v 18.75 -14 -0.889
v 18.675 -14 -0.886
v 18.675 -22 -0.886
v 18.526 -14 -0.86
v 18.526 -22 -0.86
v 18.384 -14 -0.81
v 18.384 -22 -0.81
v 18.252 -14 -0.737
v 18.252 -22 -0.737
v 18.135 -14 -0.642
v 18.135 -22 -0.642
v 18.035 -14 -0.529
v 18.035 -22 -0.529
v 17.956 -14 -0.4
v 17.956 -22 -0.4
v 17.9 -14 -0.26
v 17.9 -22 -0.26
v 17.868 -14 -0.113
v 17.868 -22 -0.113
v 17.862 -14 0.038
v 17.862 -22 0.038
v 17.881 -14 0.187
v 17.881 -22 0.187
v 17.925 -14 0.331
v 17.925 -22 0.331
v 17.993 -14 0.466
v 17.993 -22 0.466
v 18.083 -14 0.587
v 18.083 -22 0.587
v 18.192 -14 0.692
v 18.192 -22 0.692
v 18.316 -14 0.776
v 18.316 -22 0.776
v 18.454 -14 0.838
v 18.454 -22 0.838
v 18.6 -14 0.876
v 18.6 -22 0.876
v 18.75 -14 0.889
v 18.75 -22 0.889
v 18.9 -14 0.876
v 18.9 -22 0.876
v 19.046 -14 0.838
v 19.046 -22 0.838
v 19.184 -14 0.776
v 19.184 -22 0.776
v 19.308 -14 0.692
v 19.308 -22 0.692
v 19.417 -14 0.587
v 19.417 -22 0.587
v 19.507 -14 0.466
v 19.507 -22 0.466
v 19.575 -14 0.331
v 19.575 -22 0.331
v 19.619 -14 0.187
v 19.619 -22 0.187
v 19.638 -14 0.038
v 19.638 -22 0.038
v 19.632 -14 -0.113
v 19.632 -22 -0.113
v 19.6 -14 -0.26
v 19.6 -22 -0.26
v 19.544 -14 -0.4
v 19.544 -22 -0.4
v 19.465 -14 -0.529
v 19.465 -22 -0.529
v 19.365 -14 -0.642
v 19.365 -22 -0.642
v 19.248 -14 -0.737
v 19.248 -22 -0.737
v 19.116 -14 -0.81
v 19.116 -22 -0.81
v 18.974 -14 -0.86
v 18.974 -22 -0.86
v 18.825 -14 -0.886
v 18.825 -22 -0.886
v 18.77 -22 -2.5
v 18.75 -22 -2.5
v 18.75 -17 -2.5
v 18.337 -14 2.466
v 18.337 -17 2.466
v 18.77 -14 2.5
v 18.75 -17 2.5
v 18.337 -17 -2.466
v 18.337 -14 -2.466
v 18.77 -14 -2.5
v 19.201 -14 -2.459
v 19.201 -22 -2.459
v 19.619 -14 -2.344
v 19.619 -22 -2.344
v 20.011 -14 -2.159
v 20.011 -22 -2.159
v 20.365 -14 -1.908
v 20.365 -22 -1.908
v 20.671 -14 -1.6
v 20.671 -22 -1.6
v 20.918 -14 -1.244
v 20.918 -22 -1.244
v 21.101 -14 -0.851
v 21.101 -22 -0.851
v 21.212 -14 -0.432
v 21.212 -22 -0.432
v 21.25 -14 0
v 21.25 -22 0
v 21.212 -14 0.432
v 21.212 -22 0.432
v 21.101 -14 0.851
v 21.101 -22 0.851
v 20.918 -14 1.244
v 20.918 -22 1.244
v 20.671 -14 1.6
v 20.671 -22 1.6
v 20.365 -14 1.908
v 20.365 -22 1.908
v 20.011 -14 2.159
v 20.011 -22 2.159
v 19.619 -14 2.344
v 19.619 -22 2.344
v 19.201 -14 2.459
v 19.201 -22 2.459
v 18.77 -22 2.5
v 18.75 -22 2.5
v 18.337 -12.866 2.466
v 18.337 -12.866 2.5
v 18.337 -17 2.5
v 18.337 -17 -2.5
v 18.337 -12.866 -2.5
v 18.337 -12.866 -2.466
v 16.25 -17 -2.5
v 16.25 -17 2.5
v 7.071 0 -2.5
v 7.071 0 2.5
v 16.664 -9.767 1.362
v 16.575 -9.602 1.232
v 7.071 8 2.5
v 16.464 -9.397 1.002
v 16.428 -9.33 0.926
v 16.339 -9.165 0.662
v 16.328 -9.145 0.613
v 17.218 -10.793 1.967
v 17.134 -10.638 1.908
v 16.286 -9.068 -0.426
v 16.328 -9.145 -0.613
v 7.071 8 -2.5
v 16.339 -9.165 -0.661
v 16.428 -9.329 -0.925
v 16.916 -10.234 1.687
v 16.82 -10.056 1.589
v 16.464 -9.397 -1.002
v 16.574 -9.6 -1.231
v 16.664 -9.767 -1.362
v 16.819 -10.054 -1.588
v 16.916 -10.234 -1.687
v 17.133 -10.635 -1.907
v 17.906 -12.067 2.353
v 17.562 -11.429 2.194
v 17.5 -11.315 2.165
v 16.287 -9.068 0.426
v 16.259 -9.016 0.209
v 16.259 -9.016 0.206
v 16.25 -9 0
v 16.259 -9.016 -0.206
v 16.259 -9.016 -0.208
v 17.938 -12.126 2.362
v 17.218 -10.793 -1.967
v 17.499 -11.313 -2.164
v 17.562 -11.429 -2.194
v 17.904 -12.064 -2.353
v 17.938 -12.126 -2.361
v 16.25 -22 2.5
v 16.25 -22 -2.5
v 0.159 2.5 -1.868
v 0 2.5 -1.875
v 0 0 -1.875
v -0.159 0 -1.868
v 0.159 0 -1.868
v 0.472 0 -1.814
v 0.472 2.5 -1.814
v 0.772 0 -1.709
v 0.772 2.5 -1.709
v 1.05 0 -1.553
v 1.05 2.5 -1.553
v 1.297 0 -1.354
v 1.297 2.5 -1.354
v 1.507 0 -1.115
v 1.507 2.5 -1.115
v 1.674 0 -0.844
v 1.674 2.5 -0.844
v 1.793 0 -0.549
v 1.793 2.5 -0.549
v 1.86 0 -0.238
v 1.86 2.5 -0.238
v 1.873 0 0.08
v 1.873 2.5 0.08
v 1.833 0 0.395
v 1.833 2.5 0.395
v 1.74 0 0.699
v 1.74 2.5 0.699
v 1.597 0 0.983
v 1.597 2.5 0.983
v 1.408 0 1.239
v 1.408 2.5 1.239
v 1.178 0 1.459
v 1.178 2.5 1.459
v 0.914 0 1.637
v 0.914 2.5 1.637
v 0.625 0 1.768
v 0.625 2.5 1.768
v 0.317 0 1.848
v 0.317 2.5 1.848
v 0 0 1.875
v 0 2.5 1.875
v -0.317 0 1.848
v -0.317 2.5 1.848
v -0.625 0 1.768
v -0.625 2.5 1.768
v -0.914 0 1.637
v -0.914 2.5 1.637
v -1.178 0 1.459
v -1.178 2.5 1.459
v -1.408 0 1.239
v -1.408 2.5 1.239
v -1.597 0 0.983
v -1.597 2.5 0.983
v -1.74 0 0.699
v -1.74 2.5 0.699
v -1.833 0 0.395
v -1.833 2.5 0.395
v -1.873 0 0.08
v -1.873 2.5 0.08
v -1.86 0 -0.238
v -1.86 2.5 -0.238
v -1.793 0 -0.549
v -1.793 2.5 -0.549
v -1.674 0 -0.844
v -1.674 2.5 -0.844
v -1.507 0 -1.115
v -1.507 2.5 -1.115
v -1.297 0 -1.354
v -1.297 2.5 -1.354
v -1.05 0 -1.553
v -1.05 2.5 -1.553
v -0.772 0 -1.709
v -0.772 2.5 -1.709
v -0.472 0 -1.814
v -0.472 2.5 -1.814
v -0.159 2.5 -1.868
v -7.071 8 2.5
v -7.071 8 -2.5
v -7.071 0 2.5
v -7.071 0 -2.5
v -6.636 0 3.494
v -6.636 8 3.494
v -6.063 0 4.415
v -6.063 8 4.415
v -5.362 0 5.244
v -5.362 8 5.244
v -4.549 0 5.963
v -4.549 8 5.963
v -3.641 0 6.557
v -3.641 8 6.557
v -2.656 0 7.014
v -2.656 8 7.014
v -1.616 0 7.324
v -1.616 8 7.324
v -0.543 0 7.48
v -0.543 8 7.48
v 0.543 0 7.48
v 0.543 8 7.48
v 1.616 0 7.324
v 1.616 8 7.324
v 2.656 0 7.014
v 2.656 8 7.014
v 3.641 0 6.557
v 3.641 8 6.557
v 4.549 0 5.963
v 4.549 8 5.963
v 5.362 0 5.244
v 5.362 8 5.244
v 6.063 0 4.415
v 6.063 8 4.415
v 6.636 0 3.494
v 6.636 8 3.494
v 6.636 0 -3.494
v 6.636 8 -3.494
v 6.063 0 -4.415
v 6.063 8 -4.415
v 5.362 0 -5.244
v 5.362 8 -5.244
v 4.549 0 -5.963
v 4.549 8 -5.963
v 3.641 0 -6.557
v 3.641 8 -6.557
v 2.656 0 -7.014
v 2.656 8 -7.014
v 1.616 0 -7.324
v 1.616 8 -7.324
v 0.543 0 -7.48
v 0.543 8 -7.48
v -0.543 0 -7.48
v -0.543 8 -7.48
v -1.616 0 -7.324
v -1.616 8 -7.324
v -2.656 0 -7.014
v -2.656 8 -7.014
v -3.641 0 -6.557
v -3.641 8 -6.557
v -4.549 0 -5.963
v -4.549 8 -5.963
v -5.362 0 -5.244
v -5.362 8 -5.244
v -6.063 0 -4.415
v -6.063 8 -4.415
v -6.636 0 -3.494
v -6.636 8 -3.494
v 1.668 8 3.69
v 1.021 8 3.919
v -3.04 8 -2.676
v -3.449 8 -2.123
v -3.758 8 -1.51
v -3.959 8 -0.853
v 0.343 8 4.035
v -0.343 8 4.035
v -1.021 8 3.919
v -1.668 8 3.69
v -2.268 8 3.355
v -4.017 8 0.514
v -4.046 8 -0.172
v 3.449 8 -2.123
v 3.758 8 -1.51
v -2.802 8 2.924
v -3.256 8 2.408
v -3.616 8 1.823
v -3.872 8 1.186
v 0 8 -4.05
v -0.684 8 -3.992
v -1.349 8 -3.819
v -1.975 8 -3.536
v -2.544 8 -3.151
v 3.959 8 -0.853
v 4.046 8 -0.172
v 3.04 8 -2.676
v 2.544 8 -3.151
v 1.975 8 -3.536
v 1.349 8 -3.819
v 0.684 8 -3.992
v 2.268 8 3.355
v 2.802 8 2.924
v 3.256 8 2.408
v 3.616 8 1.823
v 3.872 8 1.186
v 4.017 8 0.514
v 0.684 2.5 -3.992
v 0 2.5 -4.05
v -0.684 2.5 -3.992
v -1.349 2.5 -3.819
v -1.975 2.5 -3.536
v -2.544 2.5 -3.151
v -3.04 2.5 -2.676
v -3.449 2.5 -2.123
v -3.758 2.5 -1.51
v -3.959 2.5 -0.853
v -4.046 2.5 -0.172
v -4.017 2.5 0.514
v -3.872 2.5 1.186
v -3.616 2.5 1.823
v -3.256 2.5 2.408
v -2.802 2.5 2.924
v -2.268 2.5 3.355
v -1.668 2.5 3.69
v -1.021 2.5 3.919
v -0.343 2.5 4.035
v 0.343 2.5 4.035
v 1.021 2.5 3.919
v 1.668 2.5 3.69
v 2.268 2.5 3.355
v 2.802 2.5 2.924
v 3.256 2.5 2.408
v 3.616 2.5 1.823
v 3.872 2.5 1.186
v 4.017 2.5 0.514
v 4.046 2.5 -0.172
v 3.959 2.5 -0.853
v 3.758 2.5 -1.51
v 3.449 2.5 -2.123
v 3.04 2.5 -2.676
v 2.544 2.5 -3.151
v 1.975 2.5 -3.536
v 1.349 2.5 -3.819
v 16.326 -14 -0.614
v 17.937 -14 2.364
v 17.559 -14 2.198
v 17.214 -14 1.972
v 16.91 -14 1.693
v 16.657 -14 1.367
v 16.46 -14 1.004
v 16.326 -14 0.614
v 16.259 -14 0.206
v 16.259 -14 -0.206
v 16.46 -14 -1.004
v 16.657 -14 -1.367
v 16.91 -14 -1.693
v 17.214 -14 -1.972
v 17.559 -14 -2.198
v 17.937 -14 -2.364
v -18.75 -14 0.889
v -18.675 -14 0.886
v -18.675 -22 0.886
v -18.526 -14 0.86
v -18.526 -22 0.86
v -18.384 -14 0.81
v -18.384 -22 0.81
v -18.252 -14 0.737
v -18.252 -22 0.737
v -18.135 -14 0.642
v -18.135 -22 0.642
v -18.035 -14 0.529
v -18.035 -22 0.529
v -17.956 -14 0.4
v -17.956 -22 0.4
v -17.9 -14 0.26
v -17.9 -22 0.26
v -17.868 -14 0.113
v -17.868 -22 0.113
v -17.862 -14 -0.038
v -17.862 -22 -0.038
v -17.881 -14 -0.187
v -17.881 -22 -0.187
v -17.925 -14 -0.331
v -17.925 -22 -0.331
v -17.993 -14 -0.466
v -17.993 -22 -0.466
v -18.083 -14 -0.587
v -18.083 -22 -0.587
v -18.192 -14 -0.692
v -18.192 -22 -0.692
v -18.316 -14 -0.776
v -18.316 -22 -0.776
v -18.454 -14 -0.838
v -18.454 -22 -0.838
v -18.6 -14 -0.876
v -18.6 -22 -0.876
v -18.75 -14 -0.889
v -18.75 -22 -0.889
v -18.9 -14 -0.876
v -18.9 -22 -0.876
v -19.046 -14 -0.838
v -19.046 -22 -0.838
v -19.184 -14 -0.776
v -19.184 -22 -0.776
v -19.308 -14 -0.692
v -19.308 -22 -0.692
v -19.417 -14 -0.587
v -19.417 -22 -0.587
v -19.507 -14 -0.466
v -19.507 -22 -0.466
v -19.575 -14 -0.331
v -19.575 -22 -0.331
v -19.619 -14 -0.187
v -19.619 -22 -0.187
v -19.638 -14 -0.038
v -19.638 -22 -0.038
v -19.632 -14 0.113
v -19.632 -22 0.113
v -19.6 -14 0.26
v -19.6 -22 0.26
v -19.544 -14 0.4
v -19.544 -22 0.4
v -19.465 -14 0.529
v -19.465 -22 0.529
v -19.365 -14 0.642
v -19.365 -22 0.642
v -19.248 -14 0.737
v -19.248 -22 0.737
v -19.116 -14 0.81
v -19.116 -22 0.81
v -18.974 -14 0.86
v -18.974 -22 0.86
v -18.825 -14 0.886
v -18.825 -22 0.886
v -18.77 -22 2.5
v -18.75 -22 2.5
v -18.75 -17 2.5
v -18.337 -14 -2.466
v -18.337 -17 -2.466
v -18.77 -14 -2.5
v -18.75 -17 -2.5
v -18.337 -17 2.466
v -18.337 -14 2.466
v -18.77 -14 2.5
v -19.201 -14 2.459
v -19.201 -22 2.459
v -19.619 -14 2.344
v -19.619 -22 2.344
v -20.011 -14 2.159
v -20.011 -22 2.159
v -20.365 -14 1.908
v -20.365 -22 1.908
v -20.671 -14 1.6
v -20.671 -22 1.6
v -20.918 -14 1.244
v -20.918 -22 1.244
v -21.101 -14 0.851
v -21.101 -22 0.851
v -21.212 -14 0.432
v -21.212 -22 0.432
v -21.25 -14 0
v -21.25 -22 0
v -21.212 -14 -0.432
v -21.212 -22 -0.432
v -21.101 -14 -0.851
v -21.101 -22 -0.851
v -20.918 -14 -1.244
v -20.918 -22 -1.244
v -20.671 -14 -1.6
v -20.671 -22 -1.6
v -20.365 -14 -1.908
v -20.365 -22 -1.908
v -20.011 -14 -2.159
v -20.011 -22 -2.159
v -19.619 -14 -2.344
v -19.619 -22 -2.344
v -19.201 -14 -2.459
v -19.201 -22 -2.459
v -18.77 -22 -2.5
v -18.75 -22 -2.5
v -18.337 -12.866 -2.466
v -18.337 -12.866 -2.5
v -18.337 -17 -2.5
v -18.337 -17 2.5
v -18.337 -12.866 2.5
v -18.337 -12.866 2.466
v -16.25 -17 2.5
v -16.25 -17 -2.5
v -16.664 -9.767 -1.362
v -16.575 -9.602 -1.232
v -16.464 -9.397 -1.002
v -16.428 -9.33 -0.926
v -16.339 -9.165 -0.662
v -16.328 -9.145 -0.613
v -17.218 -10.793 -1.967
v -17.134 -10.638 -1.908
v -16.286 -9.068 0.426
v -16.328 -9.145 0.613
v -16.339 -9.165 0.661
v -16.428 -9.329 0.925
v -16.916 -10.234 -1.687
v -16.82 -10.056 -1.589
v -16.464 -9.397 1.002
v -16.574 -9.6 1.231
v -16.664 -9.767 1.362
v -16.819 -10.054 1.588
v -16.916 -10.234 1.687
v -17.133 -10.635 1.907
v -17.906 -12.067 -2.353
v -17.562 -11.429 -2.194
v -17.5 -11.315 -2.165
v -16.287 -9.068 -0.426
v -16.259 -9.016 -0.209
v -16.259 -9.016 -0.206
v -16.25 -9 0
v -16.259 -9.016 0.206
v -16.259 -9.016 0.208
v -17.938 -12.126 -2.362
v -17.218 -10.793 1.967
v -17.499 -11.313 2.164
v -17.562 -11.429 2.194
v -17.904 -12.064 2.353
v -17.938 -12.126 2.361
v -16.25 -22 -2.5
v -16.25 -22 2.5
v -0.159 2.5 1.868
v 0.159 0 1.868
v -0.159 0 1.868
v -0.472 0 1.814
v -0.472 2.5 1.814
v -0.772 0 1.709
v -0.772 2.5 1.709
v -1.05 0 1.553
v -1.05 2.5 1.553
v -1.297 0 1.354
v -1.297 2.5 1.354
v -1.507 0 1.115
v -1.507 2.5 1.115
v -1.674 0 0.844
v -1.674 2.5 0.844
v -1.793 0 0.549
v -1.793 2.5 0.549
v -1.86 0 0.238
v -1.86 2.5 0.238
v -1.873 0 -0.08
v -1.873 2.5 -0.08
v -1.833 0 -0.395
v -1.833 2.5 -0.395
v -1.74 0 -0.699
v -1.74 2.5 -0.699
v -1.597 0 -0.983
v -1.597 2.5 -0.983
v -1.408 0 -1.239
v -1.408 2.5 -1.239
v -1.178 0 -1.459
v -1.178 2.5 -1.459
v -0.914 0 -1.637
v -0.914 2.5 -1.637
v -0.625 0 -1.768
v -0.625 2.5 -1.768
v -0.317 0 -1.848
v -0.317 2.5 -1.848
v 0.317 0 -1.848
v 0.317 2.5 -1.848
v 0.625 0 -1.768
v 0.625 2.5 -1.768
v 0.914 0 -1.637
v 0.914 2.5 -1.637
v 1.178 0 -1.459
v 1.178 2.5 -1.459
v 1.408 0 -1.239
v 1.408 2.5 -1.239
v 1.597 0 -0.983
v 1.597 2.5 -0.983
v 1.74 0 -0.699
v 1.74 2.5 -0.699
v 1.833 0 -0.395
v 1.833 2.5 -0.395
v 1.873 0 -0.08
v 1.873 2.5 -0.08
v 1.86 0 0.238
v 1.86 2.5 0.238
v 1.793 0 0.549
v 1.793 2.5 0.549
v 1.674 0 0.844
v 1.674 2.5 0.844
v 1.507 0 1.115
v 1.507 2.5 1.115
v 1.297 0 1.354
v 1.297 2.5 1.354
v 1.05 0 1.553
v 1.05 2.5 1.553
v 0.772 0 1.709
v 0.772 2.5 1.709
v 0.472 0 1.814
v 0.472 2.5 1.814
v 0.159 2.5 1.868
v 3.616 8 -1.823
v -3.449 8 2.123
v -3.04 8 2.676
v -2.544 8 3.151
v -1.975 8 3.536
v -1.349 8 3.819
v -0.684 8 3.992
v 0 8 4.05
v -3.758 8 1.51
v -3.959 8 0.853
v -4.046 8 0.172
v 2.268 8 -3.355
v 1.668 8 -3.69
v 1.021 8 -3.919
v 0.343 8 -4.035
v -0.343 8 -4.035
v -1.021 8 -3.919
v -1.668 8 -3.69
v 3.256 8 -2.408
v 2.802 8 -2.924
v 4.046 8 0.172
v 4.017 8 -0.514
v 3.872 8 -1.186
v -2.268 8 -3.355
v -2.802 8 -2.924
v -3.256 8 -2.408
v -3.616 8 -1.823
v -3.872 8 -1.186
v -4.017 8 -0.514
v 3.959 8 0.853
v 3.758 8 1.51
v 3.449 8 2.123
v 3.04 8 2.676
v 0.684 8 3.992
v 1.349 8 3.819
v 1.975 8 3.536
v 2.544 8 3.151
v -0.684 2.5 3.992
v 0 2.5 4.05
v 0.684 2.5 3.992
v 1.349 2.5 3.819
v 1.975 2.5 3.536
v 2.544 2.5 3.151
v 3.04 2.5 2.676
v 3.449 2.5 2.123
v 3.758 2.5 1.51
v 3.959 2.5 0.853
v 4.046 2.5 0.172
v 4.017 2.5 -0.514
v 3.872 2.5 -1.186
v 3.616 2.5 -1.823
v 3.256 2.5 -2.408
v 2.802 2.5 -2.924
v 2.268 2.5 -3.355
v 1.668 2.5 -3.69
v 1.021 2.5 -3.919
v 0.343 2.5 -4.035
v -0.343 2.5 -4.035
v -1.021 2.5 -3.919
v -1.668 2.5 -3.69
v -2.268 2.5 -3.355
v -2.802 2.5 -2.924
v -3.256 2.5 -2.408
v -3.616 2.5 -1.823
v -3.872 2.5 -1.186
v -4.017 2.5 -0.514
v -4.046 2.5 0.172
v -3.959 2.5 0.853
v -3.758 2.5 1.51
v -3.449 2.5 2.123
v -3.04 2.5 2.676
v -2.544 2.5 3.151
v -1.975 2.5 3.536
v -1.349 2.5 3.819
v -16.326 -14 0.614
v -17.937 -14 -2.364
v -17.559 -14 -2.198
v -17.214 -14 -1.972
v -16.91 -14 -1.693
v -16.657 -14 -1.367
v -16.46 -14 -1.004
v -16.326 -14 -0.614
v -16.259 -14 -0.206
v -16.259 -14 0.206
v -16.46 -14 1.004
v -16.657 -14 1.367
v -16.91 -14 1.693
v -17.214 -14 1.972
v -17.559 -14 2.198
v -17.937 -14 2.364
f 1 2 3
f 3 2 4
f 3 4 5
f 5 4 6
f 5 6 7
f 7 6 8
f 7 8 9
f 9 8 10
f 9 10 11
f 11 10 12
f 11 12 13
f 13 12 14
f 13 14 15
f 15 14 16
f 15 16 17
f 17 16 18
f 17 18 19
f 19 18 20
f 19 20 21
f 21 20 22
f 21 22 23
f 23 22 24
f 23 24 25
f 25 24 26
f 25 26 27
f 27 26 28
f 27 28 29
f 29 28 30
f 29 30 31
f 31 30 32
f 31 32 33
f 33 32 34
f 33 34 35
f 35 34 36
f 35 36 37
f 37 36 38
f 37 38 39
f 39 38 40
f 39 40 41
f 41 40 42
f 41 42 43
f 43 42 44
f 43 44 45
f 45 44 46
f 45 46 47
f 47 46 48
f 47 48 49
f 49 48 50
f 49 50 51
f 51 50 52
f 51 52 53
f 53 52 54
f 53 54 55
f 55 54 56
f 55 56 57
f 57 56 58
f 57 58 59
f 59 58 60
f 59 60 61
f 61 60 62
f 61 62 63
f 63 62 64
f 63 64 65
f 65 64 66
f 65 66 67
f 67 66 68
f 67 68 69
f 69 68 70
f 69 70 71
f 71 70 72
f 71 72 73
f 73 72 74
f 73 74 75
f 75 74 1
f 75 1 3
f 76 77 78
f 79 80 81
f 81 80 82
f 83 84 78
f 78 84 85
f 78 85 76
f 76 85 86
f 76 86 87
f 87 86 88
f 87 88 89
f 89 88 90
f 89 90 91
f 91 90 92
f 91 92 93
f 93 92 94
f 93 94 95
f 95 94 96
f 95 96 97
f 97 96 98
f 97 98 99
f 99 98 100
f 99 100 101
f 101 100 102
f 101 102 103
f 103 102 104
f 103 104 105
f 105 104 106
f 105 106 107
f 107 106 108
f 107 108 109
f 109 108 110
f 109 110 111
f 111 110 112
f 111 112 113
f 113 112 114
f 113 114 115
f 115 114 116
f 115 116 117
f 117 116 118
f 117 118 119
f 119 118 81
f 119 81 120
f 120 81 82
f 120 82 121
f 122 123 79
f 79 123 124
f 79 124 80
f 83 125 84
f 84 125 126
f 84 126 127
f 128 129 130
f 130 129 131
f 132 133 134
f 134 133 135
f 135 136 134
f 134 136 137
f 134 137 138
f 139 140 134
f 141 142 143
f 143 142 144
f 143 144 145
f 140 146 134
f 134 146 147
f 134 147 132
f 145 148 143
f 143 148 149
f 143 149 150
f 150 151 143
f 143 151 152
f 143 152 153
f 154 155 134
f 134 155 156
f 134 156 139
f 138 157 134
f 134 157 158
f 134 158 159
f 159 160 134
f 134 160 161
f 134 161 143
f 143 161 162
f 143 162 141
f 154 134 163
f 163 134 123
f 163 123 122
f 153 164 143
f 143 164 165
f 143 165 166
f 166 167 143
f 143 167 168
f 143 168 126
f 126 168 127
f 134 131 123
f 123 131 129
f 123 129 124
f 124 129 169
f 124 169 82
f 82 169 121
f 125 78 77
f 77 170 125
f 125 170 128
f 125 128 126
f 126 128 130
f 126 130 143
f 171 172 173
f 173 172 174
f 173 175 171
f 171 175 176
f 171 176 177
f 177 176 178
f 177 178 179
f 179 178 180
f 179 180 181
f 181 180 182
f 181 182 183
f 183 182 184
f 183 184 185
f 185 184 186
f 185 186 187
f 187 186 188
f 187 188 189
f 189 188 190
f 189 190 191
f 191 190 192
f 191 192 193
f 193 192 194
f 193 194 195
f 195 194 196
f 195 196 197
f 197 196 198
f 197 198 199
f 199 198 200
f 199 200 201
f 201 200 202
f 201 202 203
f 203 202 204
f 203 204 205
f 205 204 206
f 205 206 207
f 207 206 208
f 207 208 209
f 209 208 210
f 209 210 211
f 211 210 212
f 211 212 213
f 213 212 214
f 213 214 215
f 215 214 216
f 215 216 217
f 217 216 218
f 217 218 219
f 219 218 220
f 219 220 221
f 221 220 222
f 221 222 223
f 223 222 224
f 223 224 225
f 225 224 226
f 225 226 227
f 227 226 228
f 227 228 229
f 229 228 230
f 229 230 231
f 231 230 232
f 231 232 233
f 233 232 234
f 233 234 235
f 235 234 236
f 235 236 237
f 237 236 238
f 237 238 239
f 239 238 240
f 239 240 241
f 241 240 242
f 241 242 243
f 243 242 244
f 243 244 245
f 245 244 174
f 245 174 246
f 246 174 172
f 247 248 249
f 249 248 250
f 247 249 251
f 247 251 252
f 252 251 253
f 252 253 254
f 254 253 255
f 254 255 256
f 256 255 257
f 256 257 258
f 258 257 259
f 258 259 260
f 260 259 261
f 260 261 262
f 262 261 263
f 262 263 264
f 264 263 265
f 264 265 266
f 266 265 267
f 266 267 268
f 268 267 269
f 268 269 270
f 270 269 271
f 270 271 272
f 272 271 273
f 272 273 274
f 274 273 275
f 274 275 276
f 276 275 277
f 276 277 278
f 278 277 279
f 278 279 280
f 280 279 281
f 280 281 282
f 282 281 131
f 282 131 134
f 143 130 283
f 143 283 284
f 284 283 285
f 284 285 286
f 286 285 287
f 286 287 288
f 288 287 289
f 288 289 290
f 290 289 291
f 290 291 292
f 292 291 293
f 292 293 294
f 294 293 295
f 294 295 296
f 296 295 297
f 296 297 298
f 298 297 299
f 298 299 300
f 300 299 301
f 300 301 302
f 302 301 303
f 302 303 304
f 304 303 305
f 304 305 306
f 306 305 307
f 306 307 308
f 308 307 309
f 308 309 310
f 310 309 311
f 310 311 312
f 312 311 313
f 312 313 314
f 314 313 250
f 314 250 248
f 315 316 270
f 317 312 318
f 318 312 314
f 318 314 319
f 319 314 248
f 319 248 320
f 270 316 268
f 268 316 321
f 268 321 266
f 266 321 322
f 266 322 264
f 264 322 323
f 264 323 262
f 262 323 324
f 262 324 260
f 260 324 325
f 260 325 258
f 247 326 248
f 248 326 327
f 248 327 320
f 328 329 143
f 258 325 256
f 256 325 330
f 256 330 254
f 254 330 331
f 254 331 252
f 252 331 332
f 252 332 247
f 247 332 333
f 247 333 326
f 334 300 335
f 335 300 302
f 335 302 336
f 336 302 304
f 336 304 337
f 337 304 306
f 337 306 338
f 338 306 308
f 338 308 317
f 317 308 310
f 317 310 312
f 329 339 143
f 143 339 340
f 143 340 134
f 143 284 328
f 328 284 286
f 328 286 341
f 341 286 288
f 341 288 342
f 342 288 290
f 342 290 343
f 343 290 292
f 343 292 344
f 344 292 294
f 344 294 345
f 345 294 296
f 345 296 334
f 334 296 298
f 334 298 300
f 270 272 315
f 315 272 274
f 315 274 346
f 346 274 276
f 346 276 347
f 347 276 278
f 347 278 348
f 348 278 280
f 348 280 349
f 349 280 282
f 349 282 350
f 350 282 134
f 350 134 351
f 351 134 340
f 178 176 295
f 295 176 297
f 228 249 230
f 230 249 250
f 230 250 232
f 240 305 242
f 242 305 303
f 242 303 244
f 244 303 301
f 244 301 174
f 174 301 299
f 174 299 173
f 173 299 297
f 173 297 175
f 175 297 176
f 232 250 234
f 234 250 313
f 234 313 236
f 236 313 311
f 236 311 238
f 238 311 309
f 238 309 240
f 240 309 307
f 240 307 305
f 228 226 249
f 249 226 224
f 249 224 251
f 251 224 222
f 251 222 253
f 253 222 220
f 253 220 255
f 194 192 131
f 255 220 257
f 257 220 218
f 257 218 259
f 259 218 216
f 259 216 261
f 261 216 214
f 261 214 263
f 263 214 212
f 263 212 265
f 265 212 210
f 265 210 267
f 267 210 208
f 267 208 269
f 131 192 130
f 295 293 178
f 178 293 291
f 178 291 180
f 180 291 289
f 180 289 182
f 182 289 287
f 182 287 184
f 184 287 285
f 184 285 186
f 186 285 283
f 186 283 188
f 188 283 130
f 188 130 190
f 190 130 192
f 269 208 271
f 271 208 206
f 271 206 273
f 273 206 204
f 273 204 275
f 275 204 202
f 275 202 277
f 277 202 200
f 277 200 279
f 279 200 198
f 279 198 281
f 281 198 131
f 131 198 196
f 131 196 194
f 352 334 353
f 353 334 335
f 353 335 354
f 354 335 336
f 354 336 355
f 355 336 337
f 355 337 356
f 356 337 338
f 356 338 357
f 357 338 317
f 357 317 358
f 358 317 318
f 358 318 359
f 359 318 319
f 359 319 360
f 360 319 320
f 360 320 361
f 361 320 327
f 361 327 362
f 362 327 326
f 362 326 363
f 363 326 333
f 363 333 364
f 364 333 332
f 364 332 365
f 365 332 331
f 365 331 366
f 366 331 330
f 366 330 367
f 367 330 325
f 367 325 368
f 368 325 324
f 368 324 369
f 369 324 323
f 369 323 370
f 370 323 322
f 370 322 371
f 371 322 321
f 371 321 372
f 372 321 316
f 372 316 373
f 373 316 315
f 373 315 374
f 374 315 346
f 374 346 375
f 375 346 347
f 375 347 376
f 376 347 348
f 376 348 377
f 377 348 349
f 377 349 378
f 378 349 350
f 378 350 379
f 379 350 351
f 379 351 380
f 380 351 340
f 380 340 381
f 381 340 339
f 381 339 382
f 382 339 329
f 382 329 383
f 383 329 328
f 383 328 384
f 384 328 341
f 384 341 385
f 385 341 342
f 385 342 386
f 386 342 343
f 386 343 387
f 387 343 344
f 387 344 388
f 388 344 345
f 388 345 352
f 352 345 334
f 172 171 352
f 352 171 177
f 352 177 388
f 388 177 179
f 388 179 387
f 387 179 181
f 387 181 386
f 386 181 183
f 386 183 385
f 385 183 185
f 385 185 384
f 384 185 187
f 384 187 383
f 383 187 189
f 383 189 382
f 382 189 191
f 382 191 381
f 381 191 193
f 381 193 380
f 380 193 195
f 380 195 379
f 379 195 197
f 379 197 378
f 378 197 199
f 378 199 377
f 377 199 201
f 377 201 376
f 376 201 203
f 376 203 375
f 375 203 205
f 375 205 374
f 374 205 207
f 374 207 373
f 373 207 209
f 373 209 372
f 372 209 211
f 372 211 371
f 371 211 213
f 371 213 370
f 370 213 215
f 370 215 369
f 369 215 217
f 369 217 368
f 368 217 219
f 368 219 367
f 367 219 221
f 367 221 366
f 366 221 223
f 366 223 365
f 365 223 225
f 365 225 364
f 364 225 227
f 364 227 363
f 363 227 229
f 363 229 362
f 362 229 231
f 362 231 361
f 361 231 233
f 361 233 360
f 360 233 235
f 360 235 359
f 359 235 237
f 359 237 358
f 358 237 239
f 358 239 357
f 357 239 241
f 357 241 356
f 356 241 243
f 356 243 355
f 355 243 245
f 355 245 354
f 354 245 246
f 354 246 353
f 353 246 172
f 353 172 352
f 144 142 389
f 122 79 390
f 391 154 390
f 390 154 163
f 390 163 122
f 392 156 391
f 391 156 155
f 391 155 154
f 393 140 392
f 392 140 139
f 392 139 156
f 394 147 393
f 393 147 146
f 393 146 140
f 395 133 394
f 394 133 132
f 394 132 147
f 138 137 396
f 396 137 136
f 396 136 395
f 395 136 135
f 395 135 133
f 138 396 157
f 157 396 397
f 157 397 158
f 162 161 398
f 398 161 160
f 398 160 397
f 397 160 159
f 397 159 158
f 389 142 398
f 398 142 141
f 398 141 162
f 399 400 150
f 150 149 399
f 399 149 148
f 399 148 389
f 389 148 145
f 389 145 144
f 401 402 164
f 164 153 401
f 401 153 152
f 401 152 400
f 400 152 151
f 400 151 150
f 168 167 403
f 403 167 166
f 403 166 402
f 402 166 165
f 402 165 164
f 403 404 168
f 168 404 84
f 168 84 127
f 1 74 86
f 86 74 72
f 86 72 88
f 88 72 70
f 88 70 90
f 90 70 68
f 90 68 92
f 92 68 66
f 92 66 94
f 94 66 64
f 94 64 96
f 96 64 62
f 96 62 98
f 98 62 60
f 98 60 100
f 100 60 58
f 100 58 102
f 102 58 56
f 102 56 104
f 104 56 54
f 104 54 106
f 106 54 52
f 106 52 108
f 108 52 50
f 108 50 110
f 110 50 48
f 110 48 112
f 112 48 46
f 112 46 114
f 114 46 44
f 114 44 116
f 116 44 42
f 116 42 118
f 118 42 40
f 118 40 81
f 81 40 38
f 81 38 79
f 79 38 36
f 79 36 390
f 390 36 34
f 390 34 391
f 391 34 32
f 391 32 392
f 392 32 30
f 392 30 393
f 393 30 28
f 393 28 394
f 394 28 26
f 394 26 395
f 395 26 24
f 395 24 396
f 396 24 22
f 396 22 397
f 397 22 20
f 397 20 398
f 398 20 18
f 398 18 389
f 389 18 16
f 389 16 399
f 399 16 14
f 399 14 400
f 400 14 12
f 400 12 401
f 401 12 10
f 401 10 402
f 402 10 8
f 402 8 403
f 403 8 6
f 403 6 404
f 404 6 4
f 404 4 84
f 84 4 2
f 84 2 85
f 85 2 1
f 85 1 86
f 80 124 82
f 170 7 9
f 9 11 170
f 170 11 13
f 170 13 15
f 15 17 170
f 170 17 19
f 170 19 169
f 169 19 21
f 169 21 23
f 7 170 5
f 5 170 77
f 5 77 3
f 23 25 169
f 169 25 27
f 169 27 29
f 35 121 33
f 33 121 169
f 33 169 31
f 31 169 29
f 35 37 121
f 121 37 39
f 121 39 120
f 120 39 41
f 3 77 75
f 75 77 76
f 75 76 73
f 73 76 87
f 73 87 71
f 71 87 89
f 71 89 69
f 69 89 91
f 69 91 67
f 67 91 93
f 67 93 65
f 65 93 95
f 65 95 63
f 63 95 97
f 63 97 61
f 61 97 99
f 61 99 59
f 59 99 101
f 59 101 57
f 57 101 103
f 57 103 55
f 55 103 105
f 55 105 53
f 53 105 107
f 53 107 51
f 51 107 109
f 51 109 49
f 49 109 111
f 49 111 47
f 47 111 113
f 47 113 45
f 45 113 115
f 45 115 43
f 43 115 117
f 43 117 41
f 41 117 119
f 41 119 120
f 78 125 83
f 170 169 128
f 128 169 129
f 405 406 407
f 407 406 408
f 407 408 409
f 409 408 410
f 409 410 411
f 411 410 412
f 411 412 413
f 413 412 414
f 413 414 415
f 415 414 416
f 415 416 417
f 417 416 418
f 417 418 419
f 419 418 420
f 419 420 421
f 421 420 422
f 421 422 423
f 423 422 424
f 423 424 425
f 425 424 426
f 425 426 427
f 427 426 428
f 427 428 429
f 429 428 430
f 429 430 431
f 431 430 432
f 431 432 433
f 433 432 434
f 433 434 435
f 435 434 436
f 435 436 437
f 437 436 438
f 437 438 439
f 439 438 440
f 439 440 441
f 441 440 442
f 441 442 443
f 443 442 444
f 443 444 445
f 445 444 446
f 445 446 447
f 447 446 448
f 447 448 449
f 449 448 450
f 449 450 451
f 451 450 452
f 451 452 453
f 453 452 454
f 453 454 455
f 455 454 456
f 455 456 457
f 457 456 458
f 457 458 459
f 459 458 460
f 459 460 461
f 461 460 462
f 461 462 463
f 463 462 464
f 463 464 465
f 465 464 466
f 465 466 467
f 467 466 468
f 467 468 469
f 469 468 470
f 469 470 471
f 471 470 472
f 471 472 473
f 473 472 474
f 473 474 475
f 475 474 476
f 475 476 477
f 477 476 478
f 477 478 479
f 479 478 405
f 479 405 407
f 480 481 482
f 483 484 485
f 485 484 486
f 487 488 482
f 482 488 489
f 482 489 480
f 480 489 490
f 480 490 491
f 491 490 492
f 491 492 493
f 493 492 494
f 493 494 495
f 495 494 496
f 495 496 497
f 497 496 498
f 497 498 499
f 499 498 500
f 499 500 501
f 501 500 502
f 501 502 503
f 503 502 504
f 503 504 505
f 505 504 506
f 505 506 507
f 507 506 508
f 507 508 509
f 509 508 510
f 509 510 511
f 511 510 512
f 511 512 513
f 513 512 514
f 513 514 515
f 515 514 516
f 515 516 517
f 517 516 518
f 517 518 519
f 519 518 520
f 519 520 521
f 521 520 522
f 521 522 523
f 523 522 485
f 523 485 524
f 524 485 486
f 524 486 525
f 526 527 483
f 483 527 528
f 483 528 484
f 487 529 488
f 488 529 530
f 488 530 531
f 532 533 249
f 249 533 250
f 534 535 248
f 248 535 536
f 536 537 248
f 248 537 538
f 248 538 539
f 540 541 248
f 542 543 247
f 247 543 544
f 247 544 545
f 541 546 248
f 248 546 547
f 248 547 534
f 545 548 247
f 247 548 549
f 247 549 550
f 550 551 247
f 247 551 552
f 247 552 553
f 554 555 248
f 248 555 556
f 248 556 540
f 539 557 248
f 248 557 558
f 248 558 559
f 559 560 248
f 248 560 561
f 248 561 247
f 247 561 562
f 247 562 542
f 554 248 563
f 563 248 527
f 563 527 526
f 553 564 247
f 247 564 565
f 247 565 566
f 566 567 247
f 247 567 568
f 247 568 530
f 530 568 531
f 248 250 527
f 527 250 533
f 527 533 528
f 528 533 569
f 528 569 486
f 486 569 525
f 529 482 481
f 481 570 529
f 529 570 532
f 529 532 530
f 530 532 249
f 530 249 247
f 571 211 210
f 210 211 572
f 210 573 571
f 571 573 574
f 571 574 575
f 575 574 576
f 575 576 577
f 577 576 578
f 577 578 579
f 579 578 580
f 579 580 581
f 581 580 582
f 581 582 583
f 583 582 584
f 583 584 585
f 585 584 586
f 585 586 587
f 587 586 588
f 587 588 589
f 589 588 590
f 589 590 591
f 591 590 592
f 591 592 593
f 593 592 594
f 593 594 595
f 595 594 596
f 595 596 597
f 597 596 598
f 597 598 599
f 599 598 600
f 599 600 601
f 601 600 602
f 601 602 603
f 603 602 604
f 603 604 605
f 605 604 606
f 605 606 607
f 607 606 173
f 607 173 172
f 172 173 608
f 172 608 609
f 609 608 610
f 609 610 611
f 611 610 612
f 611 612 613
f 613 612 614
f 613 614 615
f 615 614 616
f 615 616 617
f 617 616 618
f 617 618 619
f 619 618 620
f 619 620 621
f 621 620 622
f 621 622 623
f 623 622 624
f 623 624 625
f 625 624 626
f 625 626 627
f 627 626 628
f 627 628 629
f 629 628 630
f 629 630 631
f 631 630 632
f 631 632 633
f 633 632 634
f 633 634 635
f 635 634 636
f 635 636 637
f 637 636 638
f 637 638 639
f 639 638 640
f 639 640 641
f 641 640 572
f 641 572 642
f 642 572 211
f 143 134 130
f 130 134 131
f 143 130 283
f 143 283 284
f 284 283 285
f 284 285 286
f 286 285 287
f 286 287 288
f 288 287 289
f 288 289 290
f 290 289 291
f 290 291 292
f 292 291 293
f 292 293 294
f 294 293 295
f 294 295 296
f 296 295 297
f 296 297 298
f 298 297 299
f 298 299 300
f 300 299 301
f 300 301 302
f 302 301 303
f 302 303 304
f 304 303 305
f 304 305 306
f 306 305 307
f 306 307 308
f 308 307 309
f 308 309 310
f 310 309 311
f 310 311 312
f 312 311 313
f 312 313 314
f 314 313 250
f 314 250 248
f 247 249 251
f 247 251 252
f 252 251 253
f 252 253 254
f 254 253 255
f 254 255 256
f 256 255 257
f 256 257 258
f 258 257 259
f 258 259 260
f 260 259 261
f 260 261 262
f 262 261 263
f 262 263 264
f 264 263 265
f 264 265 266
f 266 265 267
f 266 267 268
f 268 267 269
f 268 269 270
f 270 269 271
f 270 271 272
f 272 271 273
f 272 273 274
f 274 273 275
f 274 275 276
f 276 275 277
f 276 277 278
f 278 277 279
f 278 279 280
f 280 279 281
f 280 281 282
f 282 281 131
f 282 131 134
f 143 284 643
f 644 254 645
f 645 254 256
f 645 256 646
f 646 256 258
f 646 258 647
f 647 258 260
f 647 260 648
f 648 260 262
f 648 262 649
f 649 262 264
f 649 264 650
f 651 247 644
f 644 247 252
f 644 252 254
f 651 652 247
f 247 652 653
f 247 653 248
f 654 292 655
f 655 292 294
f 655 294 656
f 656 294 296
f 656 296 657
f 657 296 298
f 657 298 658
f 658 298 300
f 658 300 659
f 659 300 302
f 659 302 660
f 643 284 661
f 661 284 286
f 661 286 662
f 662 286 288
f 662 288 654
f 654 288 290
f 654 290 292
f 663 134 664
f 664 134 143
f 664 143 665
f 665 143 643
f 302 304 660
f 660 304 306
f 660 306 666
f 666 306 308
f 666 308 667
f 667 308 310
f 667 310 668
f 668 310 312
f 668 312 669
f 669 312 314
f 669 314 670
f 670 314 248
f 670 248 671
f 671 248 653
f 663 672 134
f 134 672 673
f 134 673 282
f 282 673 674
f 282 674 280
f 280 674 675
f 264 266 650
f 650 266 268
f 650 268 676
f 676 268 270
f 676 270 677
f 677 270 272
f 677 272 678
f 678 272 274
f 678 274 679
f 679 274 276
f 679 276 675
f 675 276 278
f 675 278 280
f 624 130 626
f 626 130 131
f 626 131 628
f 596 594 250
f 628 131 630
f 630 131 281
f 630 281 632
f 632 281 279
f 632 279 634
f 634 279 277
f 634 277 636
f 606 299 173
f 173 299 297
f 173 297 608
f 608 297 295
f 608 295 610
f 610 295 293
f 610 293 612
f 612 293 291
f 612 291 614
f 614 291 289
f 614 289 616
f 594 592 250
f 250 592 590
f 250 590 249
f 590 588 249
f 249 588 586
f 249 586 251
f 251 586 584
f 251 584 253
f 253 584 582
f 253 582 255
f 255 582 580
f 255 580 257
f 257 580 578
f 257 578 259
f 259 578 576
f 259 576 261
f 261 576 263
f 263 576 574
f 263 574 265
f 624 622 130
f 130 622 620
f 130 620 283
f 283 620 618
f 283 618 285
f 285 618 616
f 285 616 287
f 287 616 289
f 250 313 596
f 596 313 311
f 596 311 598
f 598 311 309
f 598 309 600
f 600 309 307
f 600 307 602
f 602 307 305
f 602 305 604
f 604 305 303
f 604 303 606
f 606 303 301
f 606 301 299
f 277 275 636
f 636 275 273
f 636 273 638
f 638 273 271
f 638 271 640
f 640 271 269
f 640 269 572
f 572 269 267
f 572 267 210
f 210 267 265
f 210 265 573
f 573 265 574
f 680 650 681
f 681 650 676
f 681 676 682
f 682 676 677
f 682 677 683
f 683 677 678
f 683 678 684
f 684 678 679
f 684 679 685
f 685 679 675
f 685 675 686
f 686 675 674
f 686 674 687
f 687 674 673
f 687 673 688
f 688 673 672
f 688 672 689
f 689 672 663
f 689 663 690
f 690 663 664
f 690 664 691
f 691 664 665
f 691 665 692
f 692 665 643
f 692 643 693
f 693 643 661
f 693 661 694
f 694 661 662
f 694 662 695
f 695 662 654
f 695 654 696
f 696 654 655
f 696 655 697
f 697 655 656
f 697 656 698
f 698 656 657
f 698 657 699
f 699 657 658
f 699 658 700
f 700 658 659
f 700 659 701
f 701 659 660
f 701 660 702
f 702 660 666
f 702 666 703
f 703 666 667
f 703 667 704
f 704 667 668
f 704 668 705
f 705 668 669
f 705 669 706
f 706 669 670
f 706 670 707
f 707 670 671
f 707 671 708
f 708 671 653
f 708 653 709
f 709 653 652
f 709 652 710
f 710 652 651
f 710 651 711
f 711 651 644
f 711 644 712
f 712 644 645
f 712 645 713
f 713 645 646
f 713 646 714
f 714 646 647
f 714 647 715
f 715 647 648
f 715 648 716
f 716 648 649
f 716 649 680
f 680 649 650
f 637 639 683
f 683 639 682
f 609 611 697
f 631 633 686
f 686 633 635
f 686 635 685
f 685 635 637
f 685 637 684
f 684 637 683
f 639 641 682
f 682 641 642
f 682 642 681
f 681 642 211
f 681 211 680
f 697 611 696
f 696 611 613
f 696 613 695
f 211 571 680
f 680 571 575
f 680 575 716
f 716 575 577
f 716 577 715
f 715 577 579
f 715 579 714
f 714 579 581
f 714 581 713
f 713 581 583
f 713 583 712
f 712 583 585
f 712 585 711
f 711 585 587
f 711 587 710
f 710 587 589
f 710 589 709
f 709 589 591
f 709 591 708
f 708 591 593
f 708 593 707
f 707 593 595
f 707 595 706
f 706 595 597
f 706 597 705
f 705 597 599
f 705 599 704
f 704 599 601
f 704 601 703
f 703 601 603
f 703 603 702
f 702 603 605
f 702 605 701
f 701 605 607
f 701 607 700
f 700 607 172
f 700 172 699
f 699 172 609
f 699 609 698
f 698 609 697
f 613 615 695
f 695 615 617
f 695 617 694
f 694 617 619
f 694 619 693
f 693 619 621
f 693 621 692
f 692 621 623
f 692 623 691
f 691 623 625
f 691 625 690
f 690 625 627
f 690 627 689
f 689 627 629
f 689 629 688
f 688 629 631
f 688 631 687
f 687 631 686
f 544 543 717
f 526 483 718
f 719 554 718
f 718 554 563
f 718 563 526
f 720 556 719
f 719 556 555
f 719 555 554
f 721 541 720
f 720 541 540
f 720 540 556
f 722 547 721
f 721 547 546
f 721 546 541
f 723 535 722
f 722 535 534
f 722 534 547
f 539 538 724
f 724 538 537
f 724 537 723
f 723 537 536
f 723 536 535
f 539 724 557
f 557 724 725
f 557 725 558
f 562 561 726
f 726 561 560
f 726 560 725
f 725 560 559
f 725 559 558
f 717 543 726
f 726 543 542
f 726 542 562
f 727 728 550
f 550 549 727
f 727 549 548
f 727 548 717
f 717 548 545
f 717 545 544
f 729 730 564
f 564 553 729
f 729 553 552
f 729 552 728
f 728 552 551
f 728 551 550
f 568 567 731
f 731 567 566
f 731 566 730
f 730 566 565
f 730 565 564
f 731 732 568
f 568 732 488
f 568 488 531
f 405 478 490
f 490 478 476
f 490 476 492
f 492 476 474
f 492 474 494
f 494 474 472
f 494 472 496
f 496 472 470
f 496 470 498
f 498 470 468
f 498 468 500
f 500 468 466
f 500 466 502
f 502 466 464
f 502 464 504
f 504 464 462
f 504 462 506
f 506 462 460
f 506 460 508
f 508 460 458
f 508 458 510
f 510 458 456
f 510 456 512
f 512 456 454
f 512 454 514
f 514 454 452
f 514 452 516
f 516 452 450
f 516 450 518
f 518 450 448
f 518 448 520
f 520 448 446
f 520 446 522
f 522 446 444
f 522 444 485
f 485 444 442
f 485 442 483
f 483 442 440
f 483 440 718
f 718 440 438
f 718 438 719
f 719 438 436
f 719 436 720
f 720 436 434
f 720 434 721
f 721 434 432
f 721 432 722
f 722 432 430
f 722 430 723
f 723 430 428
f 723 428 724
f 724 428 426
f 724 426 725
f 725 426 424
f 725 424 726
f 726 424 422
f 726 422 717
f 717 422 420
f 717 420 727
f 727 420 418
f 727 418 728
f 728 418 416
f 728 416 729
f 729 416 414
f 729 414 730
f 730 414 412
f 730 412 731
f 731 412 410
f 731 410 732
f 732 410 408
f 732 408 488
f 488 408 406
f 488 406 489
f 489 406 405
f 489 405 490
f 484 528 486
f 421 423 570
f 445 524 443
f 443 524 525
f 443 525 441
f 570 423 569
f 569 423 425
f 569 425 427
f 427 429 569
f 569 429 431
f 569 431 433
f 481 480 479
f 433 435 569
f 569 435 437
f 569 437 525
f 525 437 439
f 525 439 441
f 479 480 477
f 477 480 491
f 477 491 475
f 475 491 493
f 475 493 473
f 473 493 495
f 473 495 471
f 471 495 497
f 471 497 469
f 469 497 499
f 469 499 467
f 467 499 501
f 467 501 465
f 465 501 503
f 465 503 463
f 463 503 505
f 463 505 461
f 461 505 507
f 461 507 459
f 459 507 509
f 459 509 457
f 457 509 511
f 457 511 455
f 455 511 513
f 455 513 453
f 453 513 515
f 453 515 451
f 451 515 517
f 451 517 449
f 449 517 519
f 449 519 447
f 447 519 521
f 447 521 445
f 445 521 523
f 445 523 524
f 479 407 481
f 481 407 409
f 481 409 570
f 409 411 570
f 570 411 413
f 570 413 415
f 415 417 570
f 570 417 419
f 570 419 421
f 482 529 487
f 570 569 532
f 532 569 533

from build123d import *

# Parameters (mm, degrees)
SKETCH1_R                = 1.875
BOSS_EXTRUDE1_DEPTH      = 8
BOSS_EXTRUDE2_START      = -17
SKETCH1_3_R              = 2.5
SKETCH1_3_R_2            = 0.889
BOSS_EXTRUDE2_DEPTH      = 5
SKETCH4_R                = 4.05
CUT_EXTRUDE1_DEPTH       = 5.5
BOSS_EXTRUDE3_DEPTH      = 2.5
BOSS_EXTRUDE3_DEPTH_BACK = 2.5
CUT_EXTRUDE2_DEPTH       = 31.129926983
CUT_EXTRUDE2_DEPTH_BACK  = 2
SKETCH5_R                = 2.5
BOSS_EXTRUDE4_START      = 5
SKETCH8_R                = 0.889
BOSS_EXTRUDE4_DEPTH      = 5
SKETCH1_4_R              = 0.889
CUT_EXTRUDE3_DEPTH       = 32.49305479
CIRPATTERN5_COUNT        = 2


with BuildPart() as part:
    # Sketch1 → Boss-Extrude1 (new body)
    with BuildSketch(Plane(origin=(0, 0, 0), x_dir=(1, 0, 0), z_dir=(0, 1, 0))):
        with BuildLine():
            Line((7.071067812, -2.5), (7.071067812, 2.5))
            ThreePointArc((7.071067812, 2.5), (0, 7.5), (-7.071067812, 2.5))
            Line((-7.071067812, 2.5), (-7.071067812, -2.5))
            ThreePointArc((-7.071067812, -2.5), (0, -7.5), (7.071067812, -2.5))
        make_face()
        Circle(SKETCH1_R, mode=Mode.SUBTRACT)
    extrude(amount=BOSS_EXTRUDE1_DEPTH)

    # Sketch4 → Cut-Extrude1 (cut)
    with BuildSketch(Plane(origin=(0, 8, 0), x_dir=(1, 0, 0), z_dir=(0, 1, 0))):
        Circle(SKETCH4_R)
    extrude(amount=-CUT_EXTRUDE1_DEPTH, mode=Mode.SUBTRACT)



with BuildPart() as body_2:
    # Sketch1<3> → Boss-Extrude2 (new body)
    with BuildSketch(Plane(origin=(0, 0, 0), x_dir=(1, 0, 0), z_dir=(0, 1, 0)).offset(BOSS_EXTRUDE2_START)):
        with Locations((-18.75, 0)):
            Circle(SKETCH1_3_R)
        with Locations((-18.75, 0)):
            Circle(SKETCH1_3_R_2, mode=Mode.SUBTRACT)
    extrude(amount=BOSS_EXTRUDE2_DEPTH)


with BuildPart() as part_1:
    add(part.part)

    add(body_2.part)  # Boss-Extrude3 merges body 2
    # Sketch3 → Boss-Extrude3 (add, two sides: drawn at the far end of the back side and taken through both)
    with BuildSketch(Plane.XY.offset(-BOSS_EXTRUDE3_DEPTH_BACK)):
        Polygon((-7.071067812, 8), (-18.337324626, -12.86586565), (-18.337324626, -17), (-16.25, -17), (-7.071067812, 0), align=None)
    extrude(amount=BOSS_EXTRUDE3_DEPTH + BOSS_EXTRUDE3_DEPTH_BACK)

    # Sketch5 → Cut-Extrude2 (cut, two sides: drawn at the far end of the back side and taken through both)
    with BuildSketch(Plane(origin=(0, -12, 0), x_dir=(1, 0, 0), z_dir=(0, 1, 0)).offset(-CUT_EXTRUDE2_DEPTH_BACK)):
        with Locations((-18.75, 0)):
            Circle(SKETCH5_R)
    extrude(amount=CUT_EXTRUDE2_DEPTH + CUT_EXTRUDE2_DEPTH_BACK, mode=Mode.SUBTRACT)

    # Sketch8 → Boss-Extrude4 (add)
    with BuildSketch(Plane.XZ.offset(17).offset(BOSS_EXTRUDE4_START)):
        with BuildLine():
            Line((-18.75, -2.5), (-16.25, -2.5))
            Line((-16.25, -2.5), (-16.25, 2.5))
            Line((-16.25, 2.5), (-18.75, 2.5))
            ThreePointArc((-18.75, 2.5), (-21.25, 0), (-18.75, -2.5))
        make_face()
        with Locations((-18.75, 0)):
            Circle(SKETCH8_R, mode=Mode.SUBTRACT)
    extrude(amount=-BOSS_EXTRUDE4_DEPTH)

    # Sketch1<4> → Cut-Extrude3 (cut, through all)
    with BuildSketch(Plane(origin=(0, 0, 0), x_dir=(1, 0, 0), z_dir=(0, 1, 0))):
        with Locations((-18.75, 0)):
            Circle(SKETCH1_4_R)
    extrude(amount=-CUT_EXTRUDE3_DEPTH, mode=Mode.SUBTRACT)


with BuildPart() as cirpattern5_1:
    # CirPattern5: pattern copy
    add(part_1.part.rotate(Axis((0, 8, 0), (0, 1, 0)), 1 * 360 / CIRPATTERN5_COUNT))


solid = Compound([part_1.part, cirpattern5_1.part])
